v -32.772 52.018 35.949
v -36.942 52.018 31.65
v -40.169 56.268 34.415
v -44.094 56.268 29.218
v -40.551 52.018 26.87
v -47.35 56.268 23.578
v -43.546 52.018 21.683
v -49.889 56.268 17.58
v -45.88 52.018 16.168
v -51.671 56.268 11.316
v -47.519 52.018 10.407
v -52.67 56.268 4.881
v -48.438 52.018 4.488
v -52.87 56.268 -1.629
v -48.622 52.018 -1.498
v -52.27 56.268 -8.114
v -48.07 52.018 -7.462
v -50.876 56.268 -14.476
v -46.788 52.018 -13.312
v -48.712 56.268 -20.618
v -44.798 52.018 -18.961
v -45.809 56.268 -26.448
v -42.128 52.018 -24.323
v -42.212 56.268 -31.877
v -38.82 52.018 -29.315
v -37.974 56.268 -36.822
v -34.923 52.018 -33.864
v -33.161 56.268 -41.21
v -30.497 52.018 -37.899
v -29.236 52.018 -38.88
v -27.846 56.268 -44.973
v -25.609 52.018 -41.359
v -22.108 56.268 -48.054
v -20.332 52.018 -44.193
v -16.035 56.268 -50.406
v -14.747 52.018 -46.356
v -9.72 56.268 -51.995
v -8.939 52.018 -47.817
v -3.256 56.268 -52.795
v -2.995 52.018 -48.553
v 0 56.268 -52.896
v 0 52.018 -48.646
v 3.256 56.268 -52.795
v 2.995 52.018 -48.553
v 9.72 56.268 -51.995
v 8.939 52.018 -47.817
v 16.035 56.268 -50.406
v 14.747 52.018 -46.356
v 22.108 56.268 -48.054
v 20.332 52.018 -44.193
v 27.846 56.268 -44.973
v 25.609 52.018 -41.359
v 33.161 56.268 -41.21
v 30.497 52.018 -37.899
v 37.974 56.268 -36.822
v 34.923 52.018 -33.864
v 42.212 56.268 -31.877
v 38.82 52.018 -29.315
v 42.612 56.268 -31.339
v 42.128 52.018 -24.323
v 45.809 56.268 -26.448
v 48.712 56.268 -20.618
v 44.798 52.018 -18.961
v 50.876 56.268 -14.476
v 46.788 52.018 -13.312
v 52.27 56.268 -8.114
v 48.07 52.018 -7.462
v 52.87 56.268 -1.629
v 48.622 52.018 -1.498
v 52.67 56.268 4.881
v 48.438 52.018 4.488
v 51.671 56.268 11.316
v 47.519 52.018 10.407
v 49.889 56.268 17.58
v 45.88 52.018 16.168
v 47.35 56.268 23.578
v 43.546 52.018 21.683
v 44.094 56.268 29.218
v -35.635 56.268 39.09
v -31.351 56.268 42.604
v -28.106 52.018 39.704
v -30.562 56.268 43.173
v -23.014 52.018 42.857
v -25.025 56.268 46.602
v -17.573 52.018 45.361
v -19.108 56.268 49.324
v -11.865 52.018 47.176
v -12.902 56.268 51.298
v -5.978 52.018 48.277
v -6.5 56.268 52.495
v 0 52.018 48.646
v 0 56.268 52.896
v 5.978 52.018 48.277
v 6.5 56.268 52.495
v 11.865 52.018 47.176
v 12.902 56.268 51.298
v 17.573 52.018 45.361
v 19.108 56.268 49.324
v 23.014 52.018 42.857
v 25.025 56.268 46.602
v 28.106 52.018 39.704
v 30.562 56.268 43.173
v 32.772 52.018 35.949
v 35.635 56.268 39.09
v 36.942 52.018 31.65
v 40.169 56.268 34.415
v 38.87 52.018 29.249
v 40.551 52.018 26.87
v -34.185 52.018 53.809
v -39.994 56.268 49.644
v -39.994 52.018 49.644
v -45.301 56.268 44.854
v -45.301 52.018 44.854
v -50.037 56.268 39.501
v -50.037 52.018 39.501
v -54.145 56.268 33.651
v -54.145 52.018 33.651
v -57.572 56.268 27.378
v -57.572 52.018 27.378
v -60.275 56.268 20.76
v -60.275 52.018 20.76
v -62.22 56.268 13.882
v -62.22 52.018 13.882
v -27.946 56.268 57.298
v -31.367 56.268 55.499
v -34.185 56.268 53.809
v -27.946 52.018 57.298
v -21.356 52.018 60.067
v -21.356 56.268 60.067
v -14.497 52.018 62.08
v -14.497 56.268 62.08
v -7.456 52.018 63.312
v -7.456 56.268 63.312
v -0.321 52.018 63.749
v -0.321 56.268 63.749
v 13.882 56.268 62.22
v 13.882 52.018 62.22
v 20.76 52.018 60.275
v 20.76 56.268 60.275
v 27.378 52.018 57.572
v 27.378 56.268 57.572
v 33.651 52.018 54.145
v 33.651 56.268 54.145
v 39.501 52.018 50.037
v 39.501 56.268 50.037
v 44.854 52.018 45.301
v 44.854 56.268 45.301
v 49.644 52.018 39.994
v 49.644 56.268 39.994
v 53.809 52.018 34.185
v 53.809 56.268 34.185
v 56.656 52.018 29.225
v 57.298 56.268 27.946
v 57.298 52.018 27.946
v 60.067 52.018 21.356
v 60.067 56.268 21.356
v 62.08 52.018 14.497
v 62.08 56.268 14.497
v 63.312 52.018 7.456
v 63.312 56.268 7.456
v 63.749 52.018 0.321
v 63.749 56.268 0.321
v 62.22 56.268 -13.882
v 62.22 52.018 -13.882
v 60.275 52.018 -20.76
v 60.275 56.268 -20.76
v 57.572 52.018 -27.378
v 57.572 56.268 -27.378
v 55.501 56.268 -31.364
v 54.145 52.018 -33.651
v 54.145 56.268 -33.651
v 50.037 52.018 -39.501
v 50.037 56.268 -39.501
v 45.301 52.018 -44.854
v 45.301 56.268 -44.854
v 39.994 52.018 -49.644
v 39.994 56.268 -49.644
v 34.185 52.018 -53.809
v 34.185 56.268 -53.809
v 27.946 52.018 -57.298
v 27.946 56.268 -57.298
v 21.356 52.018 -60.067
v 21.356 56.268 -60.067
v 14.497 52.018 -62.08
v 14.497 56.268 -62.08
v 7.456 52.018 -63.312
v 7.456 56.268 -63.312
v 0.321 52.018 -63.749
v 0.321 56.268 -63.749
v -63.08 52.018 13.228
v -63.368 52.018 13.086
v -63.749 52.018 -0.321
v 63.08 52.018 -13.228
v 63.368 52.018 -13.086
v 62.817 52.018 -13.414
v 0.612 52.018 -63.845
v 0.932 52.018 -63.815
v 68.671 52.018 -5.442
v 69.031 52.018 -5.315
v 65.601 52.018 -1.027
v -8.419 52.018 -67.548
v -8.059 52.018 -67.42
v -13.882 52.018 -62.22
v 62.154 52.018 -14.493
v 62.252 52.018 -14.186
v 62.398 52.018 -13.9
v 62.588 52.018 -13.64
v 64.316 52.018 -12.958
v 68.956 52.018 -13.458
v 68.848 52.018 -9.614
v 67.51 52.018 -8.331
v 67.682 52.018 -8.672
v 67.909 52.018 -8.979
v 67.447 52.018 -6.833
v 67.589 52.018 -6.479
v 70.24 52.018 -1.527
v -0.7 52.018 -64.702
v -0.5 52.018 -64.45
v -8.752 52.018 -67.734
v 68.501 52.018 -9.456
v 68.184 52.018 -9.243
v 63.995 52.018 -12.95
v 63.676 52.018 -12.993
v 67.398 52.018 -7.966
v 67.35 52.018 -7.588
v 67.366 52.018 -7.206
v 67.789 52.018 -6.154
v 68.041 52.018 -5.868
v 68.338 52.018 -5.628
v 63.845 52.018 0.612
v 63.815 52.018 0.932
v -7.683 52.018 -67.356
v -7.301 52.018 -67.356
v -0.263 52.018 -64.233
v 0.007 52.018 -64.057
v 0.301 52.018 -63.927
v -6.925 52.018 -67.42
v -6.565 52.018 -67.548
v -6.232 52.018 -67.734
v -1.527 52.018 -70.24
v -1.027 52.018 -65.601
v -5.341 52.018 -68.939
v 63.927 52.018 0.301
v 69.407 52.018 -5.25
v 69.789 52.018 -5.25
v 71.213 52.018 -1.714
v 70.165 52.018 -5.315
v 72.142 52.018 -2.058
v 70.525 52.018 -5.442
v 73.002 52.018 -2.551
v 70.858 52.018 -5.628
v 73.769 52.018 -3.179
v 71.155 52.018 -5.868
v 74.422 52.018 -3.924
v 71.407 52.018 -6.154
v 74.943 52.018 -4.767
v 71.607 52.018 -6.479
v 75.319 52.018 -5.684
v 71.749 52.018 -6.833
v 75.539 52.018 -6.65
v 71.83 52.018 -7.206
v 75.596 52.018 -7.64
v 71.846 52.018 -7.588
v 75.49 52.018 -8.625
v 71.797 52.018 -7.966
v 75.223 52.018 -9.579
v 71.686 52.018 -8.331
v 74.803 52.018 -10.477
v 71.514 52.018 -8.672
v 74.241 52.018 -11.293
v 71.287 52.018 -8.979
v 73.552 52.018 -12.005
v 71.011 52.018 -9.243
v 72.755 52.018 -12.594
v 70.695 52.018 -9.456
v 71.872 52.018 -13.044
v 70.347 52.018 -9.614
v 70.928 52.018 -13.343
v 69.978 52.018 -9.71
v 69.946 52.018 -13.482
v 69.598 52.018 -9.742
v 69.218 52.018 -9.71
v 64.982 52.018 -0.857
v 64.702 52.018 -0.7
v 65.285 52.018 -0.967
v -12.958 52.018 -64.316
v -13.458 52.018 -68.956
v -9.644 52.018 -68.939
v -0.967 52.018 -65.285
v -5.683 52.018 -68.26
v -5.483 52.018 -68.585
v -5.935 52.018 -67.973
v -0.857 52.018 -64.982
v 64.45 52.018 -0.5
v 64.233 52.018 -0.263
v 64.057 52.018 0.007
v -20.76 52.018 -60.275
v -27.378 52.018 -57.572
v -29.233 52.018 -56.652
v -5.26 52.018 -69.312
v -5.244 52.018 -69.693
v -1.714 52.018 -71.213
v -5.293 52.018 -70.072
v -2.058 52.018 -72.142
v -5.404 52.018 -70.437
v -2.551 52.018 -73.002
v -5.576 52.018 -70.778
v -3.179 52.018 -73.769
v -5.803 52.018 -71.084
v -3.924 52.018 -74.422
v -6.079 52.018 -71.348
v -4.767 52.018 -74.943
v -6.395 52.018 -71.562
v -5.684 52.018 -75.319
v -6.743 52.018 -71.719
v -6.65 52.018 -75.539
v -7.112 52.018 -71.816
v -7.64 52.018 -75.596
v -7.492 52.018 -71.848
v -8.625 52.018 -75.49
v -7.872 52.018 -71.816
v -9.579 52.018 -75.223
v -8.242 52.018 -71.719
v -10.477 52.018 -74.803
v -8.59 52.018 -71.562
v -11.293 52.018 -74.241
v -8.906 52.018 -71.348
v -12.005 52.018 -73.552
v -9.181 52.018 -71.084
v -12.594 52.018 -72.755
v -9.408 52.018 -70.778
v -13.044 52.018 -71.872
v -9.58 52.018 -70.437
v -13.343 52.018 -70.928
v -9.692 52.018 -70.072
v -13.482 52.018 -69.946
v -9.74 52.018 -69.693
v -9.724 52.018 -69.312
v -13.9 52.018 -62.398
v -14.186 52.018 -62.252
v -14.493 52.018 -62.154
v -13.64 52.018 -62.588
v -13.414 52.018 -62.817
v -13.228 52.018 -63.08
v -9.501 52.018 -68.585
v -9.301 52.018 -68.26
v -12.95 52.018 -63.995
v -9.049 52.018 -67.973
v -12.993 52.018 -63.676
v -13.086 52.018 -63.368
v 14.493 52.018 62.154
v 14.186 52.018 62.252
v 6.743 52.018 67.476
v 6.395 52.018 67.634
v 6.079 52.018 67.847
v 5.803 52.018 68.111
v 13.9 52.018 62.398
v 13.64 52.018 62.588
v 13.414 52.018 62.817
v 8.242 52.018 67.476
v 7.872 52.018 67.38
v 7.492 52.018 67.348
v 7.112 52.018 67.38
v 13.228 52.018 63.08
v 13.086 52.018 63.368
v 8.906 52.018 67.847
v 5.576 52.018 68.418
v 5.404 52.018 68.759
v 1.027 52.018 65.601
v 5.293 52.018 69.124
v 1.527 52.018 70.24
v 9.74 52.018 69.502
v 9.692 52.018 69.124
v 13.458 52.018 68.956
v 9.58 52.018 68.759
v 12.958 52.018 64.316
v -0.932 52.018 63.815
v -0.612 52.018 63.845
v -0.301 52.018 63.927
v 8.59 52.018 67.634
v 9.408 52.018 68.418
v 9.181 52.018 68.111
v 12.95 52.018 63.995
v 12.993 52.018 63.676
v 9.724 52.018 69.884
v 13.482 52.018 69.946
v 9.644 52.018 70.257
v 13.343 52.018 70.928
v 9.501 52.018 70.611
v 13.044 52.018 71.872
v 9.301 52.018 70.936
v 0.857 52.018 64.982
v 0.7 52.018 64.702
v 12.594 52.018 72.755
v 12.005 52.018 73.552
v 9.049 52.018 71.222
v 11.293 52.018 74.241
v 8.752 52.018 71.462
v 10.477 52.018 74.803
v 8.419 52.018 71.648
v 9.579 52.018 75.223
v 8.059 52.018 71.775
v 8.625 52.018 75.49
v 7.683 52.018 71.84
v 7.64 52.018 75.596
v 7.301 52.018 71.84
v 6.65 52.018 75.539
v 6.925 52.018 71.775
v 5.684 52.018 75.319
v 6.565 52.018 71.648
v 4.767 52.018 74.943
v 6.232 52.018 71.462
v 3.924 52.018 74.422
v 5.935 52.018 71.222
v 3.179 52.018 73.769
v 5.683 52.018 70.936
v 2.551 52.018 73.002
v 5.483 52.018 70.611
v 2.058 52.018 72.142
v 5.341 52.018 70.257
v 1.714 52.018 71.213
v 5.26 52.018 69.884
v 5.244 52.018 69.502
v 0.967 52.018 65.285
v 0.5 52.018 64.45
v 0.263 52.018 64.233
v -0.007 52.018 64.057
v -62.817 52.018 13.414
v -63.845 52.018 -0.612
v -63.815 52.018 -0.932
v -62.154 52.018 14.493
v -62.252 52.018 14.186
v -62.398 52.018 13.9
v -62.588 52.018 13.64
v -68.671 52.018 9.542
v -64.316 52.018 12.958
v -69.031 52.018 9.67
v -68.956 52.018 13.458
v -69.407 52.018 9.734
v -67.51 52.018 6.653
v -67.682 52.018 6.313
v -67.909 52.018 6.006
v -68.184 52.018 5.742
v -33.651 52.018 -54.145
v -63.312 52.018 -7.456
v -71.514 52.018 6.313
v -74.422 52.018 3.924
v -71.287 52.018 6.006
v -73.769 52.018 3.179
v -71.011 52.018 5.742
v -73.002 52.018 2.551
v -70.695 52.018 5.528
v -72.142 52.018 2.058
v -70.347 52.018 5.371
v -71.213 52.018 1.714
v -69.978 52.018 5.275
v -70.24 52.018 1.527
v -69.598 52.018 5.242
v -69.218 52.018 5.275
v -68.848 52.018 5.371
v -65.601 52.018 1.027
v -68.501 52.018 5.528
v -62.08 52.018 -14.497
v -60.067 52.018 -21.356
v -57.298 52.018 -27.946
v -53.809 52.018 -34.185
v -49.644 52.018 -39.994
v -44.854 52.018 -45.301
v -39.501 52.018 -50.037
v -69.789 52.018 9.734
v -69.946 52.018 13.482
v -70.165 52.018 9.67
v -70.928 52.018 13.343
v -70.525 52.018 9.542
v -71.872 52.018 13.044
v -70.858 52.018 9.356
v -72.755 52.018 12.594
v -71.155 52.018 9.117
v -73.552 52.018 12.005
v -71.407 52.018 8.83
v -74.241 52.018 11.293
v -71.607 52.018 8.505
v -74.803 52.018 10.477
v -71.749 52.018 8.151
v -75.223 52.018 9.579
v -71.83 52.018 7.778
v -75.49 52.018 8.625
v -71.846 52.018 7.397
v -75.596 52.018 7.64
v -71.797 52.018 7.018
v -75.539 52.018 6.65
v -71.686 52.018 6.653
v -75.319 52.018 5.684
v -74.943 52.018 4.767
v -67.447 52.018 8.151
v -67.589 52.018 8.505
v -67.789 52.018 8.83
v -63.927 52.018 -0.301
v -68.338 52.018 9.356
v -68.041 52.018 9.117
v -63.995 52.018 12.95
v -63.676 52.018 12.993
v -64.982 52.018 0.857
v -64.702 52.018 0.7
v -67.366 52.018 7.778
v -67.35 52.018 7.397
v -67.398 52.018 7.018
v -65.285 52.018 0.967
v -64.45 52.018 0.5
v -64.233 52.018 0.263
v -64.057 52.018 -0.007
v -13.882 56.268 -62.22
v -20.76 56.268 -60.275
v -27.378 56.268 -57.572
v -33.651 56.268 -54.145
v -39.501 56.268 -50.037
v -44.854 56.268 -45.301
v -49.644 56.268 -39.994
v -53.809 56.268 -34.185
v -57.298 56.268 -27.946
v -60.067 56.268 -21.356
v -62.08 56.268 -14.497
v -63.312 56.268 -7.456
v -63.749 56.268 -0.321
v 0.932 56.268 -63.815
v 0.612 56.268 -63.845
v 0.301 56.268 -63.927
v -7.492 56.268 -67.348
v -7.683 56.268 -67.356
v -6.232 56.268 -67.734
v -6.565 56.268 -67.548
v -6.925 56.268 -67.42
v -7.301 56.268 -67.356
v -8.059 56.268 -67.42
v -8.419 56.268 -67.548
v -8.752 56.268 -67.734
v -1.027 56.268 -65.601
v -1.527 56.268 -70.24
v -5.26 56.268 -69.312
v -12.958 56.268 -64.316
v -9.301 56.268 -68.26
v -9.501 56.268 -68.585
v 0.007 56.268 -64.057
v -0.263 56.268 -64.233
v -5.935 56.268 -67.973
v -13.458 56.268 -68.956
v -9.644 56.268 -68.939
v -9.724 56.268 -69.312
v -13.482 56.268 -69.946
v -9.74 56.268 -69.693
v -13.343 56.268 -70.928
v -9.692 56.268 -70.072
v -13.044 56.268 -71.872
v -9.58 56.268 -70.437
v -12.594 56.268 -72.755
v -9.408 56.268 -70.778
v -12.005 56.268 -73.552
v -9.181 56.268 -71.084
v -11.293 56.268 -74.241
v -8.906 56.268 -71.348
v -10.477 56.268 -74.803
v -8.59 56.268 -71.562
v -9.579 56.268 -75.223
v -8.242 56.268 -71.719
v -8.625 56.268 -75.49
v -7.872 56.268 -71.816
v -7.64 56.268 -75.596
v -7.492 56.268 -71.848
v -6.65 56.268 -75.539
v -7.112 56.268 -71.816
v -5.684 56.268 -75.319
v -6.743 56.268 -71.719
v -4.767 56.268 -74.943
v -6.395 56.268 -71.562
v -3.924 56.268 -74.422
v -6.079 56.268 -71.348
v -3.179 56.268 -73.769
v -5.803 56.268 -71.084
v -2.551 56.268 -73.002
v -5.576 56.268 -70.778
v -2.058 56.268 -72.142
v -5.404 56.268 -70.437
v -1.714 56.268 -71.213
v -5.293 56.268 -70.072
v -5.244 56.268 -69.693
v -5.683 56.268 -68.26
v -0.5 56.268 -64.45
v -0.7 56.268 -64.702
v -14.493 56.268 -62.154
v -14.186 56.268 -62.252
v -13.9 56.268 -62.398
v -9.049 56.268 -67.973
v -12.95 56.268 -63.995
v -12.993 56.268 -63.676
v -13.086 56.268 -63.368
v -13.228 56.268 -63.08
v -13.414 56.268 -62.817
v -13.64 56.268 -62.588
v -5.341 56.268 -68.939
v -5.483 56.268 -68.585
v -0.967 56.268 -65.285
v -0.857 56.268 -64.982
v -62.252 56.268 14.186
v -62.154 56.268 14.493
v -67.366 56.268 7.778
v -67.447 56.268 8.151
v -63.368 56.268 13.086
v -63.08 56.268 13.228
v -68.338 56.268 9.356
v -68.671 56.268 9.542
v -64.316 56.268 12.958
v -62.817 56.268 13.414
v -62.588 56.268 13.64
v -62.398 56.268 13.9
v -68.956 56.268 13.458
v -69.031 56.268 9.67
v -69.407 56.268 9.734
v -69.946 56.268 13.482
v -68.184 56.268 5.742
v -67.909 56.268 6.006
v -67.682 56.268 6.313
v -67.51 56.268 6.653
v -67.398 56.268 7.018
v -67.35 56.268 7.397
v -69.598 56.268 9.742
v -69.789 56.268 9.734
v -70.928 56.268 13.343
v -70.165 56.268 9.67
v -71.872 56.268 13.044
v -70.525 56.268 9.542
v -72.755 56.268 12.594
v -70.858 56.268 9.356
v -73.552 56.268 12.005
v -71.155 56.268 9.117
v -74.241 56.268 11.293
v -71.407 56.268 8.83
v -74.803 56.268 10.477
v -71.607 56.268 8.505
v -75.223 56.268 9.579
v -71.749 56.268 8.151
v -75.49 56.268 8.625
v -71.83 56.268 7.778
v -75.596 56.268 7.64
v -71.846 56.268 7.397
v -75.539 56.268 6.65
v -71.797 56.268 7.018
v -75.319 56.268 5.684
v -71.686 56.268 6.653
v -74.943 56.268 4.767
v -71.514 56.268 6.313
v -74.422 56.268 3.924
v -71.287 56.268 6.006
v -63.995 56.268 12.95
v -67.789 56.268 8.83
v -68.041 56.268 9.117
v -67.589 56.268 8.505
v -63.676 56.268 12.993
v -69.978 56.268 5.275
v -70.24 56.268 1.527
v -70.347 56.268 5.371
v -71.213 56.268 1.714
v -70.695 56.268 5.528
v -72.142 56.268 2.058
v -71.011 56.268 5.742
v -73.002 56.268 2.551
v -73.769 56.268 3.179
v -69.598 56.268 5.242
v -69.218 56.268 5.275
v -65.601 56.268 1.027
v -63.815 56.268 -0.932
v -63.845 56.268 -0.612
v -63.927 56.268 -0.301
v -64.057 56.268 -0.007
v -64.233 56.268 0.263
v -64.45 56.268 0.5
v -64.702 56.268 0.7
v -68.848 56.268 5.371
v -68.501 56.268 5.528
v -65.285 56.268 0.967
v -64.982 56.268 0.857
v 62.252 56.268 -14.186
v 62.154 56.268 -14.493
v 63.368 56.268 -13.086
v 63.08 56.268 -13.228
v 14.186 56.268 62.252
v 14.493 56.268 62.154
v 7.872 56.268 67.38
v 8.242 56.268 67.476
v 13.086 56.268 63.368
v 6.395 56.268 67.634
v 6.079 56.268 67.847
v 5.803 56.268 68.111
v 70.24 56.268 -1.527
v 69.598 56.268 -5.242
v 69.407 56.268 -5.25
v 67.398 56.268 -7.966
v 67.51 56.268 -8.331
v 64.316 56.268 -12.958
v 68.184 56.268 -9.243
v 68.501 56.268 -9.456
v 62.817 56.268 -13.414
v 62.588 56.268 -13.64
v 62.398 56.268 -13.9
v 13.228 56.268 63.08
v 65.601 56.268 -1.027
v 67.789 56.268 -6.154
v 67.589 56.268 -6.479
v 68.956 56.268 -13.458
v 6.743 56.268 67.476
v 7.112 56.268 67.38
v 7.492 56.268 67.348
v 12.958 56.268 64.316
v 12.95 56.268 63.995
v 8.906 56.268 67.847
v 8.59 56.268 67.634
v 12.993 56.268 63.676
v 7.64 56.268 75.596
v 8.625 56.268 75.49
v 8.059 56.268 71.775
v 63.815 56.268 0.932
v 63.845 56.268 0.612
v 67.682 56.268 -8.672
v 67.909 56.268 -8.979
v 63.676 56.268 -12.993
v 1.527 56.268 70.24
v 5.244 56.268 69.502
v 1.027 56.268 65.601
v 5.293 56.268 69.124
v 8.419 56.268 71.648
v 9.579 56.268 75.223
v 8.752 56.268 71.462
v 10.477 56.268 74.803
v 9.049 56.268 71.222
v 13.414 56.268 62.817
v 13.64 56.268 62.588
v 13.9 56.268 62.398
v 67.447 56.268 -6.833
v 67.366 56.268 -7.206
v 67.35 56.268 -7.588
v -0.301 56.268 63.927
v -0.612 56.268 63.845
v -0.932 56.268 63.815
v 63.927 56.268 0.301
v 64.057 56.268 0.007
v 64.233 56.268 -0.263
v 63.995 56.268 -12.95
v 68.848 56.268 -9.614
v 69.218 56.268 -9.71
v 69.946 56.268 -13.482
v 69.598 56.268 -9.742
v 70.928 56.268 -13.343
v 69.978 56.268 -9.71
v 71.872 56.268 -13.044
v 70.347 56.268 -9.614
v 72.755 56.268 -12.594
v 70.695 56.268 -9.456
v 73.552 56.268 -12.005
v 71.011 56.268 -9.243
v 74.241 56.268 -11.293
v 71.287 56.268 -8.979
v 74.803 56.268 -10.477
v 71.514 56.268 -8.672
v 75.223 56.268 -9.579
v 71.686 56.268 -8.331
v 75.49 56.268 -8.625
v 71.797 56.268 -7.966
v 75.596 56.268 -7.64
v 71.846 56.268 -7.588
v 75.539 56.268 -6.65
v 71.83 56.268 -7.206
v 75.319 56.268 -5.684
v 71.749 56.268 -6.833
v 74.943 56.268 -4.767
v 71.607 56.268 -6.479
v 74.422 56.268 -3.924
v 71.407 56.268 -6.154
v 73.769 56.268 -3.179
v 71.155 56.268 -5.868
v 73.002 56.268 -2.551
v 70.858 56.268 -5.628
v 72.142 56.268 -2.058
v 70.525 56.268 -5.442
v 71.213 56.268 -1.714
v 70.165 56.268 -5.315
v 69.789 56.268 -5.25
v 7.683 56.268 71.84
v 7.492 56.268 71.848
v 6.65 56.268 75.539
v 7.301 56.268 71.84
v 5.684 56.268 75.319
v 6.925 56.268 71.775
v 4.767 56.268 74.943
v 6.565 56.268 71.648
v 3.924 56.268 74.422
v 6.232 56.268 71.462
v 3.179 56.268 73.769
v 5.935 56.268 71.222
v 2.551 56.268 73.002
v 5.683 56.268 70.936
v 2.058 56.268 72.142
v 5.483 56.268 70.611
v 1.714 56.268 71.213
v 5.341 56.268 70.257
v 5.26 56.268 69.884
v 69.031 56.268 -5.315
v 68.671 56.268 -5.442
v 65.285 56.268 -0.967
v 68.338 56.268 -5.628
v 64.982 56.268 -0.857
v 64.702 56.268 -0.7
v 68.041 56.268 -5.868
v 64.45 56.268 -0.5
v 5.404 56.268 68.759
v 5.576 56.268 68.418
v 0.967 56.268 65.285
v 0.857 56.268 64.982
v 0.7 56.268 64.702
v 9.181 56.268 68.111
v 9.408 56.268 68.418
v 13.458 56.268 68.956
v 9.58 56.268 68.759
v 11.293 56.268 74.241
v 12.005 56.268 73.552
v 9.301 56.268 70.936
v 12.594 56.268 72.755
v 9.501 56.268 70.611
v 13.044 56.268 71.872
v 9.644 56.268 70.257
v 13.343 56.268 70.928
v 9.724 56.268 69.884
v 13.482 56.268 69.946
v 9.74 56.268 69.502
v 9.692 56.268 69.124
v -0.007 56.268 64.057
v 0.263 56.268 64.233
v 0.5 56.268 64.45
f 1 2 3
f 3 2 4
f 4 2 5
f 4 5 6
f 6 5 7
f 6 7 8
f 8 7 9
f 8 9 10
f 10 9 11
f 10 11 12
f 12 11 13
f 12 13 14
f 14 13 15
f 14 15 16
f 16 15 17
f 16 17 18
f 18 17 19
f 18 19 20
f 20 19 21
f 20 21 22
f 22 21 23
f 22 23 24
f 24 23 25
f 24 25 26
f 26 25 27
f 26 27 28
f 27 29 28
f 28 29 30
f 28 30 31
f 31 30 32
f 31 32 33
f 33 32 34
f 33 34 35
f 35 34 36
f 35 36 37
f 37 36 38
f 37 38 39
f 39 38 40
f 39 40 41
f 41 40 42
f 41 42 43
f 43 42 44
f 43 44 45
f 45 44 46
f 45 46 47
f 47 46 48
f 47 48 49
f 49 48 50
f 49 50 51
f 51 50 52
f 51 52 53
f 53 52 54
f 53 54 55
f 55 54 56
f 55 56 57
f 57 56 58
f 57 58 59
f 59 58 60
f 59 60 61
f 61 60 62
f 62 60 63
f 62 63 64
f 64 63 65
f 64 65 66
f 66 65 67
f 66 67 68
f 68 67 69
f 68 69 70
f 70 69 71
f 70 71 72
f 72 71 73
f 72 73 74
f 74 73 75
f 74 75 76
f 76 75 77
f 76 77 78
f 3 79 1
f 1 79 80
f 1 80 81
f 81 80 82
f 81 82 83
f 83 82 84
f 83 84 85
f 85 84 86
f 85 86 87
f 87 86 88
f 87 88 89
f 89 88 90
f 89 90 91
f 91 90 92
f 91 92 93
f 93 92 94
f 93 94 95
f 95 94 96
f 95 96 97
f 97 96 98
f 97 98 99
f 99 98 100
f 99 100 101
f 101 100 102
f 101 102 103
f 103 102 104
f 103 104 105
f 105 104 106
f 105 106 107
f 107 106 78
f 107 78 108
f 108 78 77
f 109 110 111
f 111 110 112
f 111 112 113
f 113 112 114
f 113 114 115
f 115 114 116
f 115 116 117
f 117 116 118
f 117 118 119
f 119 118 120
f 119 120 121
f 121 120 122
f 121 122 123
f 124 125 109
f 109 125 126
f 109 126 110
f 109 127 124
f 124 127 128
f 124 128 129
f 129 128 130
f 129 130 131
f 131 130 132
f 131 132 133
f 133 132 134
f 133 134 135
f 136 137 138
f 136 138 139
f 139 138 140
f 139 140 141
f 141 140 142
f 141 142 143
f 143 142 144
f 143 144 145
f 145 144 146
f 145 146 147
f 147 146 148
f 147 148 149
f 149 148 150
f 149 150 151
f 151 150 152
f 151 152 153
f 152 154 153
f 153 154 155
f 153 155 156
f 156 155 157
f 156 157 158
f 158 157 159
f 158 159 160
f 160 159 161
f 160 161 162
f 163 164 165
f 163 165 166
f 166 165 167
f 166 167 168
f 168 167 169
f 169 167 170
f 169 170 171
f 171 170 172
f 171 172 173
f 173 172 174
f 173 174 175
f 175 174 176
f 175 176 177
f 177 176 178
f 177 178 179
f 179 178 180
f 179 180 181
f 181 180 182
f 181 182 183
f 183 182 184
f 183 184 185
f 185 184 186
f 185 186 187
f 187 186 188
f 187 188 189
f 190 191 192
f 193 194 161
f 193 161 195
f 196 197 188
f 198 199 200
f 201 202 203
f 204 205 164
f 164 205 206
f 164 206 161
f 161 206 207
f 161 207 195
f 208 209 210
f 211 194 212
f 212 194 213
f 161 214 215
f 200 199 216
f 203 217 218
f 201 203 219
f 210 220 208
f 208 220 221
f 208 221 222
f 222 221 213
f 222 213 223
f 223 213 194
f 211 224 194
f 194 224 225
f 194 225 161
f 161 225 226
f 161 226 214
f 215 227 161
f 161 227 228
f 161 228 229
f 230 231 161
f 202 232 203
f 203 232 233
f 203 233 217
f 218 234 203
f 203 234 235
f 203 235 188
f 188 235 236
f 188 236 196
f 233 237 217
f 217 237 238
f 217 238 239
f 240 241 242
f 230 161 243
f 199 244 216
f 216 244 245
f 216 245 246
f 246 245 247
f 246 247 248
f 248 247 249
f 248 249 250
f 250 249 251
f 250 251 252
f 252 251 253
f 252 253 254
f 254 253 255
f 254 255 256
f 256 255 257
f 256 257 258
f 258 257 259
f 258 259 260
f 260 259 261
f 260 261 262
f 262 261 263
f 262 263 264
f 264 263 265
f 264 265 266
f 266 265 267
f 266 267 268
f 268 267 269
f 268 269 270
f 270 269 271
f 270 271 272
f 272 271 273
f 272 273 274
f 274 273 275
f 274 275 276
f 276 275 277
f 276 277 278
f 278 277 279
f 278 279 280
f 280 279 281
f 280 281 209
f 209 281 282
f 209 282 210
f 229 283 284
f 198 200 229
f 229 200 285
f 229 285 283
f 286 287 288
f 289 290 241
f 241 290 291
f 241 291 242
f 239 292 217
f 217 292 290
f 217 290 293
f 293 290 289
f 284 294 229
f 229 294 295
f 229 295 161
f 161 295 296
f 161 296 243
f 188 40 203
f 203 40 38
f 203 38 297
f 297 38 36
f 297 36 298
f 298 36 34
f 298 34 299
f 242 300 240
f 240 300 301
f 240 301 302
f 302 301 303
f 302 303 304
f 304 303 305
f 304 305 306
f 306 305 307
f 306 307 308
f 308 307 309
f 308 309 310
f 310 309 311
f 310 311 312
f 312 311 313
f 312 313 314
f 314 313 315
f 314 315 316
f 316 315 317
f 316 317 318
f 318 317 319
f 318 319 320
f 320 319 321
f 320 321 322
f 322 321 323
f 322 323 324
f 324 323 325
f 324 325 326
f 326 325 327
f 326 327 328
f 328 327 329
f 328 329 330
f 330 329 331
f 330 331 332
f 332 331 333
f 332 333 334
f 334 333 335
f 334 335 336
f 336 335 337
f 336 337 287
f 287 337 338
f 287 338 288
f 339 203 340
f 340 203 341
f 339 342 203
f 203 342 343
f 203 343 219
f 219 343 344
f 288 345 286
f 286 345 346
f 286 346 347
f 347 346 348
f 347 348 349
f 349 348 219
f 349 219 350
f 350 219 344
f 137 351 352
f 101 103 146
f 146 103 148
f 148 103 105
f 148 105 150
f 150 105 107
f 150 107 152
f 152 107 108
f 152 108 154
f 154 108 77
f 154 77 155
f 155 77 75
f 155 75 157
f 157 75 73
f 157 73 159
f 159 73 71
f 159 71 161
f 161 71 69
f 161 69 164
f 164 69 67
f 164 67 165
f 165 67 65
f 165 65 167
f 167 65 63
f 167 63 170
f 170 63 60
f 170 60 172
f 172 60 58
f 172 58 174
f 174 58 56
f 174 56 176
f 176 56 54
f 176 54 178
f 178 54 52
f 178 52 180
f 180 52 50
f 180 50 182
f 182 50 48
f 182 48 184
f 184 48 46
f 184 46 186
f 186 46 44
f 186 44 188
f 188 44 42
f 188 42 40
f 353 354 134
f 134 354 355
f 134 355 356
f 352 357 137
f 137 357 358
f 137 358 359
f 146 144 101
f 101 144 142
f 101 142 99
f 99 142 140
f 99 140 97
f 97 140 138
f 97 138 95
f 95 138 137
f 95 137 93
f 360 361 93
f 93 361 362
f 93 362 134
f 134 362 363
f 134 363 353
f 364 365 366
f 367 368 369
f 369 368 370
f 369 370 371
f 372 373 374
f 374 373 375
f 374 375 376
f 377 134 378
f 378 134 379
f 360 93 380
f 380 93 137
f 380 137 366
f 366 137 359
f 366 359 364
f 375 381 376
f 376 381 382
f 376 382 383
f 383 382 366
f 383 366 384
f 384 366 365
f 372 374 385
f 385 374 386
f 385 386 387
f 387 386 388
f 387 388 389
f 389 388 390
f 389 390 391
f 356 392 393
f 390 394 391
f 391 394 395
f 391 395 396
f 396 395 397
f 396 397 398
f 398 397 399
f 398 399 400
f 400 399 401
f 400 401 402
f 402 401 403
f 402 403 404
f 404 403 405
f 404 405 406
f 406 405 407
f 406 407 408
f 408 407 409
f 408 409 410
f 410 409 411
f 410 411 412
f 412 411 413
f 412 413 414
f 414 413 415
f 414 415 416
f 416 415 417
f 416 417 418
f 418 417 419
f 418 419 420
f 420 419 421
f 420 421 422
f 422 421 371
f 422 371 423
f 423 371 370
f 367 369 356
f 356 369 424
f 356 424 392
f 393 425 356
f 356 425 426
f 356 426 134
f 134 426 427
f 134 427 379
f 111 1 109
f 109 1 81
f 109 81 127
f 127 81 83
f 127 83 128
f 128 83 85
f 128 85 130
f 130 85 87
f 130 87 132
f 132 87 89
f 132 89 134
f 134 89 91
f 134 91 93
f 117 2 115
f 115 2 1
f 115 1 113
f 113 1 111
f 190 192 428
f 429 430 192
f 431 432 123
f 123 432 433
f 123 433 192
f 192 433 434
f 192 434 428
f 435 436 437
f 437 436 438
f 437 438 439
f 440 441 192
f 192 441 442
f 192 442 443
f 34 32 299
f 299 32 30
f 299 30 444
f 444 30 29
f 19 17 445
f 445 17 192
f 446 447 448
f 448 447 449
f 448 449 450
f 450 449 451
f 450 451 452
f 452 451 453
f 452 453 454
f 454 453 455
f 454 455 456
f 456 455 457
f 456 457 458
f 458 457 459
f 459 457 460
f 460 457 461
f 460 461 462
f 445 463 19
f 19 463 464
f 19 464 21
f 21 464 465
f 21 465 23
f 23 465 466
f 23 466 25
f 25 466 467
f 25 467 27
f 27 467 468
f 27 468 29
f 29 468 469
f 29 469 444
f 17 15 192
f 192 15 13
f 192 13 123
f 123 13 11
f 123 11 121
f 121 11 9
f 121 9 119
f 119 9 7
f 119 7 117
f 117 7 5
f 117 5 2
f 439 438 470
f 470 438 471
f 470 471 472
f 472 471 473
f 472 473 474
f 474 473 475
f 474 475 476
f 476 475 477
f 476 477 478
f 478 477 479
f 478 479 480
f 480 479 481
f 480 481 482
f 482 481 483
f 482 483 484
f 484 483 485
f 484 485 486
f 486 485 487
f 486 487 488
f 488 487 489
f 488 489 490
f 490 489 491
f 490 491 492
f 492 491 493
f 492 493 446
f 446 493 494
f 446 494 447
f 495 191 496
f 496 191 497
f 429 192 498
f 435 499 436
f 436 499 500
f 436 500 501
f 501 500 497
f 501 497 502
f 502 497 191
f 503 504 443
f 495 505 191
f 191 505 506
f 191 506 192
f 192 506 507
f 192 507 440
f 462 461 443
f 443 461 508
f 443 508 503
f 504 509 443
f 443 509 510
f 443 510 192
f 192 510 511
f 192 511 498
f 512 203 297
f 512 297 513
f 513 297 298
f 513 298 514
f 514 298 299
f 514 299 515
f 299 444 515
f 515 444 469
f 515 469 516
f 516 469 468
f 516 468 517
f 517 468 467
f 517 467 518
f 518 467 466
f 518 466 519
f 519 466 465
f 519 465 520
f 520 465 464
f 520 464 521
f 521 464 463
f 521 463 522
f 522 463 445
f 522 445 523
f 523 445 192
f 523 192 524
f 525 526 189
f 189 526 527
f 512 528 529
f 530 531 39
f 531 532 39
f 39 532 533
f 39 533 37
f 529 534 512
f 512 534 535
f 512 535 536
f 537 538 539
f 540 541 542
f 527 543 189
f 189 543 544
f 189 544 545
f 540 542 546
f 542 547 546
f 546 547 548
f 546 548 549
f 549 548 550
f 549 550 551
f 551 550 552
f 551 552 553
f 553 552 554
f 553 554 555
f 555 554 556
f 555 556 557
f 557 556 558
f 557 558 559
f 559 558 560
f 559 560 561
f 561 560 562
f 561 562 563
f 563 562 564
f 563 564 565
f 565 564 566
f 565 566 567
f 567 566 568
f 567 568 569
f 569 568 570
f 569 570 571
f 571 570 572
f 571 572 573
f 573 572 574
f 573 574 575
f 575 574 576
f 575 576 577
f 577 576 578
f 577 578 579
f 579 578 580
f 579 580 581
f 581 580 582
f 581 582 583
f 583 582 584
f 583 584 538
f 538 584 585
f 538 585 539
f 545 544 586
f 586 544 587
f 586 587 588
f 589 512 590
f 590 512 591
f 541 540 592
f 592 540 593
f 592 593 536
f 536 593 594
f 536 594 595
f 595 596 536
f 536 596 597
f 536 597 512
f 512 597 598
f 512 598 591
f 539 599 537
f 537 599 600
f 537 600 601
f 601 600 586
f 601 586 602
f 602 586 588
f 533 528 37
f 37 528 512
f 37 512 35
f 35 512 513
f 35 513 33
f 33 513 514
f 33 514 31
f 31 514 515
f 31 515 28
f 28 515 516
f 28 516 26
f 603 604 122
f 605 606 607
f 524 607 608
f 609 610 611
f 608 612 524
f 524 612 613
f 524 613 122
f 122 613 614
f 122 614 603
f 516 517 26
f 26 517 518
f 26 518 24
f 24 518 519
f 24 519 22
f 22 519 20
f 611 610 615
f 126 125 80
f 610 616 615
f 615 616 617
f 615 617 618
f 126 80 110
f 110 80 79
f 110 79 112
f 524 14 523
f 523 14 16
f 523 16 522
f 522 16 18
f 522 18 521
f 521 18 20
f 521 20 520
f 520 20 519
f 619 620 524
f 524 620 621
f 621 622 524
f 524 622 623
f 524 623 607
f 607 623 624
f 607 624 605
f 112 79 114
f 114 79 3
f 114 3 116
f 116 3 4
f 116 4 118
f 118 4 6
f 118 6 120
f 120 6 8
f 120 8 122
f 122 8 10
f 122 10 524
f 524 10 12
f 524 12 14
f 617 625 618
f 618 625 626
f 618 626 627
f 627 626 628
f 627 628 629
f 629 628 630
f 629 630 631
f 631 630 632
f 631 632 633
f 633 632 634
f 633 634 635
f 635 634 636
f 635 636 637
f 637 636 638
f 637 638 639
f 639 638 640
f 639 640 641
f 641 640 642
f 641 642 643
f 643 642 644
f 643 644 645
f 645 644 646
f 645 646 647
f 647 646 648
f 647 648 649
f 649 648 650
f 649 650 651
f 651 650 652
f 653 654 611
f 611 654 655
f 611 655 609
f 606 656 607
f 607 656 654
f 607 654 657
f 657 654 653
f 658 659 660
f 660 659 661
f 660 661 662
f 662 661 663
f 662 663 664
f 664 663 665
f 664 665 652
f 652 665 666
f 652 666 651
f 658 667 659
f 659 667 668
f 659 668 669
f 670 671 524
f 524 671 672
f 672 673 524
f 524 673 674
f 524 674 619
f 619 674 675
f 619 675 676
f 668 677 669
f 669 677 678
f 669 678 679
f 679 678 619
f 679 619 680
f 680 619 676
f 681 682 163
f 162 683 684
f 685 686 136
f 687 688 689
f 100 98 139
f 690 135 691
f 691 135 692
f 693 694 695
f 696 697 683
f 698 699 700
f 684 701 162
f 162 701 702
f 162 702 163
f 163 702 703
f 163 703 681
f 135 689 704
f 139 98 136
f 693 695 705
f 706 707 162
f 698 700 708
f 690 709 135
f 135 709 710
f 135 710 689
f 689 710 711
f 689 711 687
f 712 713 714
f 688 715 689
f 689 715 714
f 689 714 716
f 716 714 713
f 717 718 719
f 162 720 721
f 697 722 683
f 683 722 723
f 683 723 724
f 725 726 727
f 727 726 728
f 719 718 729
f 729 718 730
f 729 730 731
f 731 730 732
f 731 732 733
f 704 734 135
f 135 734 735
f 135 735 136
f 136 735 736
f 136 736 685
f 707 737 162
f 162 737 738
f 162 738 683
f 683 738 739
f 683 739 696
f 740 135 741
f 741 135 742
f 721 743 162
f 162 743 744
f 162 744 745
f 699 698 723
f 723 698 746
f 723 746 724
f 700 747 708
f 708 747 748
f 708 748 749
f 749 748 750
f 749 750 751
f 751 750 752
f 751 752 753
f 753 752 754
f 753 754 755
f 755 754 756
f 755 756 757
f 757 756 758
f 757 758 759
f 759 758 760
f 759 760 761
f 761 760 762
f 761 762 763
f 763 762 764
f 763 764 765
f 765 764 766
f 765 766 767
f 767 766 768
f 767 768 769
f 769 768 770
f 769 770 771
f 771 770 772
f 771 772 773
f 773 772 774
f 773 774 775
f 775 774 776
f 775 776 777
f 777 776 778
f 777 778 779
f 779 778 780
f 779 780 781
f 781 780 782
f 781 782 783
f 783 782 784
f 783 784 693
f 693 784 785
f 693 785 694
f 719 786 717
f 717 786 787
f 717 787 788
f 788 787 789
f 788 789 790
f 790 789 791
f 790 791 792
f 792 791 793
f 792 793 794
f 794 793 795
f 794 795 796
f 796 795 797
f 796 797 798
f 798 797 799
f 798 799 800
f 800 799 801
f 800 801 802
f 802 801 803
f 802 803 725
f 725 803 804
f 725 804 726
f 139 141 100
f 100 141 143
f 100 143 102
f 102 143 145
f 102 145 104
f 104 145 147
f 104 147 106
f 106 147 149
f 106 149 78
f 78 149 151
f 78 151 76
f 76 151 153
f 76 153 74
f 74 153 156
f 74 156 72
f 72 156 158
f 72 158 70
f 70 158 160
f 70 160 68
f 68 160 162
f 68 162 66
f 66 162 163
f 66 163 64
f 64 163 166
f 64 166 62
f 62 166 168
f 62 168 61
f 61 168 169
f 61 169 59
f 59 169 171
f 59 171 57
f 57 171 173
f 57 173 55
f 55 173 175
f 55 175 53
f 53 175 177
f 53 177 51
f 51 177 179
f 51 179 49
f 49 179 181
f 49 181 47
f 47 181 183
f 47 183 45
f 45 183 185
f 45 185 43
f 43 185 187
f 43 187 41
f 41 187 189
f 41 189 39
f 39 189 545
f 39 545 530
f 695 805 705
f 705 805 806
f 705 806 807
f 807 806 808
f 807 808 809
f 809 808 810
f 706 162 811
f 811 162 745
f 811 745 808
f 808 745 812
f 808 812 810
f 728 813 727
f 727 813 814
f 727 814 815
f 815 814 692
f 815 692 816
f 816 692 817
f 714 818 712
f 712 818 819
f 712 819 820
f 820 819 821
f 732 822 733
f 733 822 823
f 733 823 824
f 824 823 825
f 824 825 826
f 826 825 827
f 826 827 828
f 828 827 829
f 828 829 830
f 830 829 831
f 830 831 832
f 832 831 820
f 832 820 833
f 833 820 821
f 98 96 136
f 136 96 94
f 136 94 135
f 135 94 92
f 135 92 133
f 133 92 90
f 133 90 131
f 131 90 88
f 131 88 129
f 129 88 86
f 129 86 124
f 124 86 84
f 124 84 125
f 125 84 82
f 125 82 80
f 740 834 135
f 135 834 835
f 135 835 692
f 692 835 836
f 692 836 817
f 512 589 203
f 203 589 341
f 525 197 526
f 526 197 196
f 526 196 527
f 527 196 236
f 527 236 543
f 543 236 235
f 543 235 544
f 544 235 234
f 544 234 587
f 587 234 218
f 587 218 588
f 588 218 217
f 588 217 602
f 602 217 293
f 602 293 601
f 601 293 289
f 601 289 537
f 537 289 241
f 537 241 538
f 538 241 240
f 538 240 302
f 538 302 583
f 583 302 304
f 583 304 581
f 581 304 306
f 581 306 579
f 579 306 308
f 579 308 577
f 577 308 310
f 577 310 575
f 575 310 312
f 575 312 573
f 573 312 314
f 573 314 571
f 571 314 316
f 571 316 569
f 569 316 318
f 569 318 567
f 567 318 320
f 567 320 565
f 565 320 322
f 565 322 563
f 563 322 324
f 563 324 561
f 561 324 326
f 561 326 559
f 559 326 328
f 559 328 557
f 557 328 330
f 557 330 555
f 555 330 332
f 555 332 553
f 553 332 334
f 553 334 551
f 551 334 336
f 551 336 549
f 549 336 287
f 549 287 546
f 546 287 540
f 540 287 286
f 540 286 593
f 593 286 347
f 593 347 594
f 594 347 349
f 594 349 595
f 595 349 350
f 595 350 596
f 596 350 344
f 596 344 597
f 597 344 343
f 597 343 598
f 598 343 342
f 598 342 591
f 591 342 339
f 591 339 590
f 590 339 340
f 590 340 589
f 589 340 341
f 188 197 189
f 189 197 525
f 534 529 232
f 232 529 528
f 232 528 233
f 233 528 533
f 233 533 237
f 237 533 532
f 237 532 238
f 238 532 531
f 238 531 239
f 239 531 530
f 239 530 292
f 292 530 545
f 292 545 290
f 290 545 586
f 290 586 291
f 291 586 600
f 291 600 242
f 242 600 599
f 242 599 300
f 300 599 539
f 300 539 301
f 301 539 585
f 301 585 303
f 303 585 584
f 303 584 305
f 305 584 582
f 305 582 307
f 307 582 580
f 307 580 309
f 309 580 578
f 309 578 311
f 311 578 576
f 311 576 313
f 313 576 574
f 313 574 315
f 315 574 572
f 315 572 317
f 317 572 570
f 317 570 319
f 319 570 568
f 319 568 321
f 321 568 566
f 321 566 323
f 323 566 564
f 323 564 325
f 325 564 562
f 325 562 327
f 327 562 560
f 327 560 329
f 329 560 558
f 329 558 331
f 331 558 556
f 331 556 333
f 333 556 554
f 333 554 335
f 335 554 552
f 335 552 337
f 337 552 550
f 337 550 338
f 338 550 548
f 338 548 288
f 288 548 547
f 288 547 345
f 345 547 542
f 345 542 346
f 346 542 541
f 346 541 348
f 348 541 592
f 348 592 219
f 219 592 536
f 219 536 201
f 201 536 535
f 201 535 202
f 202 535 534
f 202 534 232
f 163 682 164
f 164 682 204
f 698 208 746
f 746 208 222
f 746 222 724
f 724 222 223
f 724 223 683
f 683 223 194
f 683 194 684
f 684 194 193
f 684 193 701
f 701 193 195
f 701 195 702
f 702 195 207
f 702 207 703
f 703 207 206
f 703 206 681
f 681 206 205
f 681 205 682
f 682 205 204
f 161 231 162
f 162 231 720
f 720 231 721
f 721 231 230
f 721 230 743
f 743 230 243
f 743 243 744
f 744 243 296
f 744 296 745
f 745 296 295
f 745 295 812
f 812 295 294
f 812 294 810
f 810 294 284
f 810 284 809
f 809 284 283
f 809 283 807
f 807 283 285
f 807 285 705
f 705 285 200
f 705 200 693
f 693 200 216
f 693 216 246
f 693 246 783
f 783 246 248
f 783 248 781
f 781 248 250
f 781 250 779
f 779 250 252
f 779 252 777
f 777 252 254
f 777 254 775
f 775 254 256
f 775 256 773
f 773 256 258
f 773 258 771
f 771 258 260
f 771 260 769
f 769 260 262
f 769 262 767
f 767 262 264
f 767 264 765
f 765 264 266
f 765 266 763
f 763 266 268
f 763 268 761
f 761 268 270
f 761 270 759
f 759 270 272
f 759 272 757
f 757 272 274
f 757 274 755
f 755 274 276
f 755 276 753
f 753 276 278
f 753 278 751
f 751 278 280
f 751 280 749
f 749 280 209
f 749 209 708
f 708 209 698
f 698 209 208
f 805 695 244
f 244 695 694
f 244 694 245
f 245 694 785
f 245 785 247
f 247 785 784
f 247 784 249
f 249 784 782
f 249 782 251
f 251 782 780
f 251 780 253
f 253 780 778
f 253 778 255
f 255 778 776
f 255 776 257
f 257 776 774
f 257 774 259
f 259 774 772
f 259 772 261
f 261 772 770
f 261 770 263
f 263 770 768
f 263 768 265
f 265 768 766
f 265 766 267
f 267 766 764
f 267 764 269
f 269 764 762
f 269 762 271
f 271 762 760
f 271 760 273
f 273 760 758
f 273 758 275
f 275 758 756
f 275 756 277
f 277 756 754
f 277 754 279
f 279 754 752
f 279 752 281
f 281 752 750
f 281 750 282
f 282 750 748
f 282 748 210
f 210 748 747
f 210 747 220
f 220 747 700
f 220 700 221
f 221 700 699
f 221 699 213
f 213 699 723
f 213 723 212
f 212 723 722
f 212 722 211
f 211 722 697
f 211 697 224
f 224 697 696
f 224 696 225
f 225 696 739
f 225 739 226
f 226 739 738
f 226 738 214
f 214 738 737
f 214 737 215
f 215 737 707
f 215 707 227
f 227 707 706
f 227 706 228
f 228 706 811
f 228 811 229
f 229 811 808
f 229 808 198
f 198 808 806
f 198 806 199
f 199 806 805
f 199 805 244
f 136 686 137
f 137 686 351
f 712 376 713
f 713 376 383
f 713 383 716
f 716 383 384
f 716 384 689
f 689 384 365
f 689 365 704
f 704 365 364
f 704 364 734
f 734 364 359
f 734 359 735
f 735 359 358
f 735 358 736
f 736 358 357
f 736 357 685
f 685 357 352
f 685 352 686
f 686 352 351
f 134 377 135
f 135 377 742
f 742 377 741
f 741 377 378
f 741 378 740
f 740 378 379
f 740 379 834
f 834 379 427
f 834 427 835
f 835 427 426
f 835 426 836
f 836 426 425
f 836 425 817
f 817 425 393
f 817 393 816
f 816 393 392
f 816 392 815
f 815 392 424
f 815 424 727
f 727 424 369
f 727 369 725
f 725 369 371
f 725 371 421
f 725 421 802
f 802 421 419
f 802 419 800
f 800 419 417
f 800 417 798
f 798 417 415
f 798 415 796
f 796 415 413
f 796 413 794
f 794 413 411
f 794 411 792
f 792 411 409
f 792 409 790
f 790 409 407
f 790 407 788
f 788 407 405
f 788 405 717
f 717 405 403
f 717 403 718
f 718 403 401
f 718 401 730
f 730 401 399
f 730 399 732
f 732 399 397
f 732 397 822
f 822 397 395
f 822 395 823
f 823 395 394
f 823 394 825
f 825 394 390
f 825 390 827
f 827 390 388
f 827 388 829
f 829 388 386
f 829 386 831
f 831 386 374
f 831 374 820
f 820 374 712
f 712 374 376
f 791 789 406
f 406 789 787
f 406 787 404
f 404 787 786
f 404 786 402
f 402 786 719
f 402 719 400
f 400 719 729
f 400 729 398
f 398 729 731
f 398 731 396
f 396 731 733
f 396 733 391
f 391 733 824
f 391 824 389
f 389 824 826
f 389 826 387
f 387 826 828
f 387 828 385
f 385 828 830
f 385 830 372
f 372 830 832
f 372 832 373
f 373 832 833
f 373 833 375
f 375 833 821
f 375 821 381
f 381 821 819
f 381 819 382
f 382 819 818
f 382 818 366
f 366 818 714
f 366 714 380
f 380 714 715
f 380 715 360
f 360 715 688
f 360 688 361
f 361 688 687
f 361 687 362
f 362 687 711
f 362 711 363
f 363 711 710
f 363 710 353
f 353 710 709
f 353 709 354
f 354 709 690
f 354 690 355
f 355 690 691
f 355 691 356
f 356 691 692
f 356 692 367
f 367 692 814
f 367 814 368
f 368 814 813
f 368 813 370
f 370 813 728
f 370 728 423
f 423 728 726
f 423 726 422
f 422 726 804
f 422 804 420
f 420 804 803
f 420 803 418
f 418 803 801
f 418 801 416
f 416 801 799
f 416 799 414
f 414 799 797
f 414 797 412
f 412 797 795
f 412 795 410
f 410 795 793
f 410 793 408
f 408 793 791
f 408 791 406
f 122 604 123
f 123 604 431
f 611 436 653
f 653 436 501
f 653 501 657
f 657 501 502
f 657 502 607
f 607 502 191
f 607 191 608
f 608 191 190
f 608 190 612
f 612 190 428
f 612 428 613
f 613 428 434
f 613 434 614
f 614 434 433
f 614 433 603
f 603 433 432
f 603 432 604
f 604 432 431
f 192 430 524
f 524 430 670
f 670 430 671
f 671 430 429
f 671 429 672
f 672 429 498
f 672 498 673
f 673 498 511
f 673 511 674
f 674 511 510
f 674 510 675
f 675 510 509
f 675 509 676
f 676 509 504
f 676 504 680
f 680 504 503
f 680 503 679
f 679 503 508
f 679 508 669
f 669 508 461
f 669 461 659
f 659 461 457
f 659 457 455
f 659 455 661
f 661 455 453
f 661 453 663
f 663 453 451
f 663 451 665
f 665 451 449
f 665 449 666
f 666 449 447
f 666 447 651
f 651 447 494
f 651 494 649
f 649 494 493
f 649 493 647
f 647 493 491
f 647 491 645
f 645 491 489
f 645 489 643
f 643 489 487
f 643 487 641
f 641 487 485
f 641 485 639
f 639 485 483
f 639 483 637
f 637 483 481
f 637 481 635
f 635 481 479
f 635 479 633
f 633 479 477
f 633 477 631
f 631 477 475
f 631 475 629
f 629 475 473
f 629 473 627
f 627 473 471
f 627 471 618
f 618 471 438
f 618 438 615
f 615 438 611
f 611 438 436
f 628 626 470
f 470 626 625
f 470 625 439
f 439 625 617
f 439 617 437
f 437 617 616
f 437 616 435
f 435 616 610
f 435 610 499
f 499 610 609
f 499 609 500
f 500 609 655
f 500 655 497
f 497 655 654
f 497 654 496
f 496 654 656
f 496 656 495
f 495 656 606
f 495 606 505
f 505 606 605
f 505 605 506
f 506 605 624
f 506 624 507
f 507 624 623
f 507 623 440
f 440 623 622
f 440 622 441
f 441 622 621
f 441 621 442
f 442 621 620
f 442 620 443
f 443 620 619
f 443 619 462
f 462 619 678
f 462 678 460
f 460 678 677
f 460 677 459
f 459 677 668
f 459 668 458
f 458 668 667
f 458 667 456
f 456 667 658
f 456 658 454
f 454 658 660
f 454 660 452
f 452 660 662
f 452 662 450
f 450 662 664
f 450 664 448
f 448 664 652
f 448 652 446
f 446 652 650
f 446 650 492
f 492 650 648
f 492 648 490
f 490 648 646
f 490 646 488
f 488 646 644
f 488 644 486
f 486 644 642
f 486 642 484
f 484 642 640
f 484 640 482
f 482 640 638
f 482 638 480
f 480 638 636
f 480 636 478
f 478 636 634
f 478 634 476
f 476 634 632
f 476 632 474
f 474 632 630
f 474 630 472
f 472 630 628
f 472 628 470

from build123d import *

# Parameters (mm, degrees)
FILLET1_R           = 2
FILLET2_R           = 6
SCALE1_SCALE        = 0.85
SKETCH4_R           = 10.6
CUT_EXTRUDE2_DEPTH  = 51.23590774
SKETCH9_R           = 2.25
BOSS_EXTRUDE1_DEPTH = 4.25
FILLET4_R           = 3
CUT_EXTRUDE3_DEPTH  = 46.98590774


with BuildPart() as part:
    # Sketch2 → Revolve1 (revolve)
    with BuildSketch(Plane(origin=(0, 0, 0), x_dir=(0, 0, -1), z_dir=(1, 0, 0))):
        Polygon((10.1, 0), (10.1, 6.971067812), (62.23, 59.101067812), (75, 59.101067812), (75, 54.101067812), (64.301067812, 54.101067812), (15.1, 4.9), (20, 0), align=None)
    revolve(axis=Axis((0, 0, 0), (0, 1, 0)))

    # Fillet1
    fillet1_edges = [part.edges().sort_by_distance(p)[0] for p in [
        (0, 4.9, 15.1),
    ]]
    fillet(fillet1_edges, radius=FILLET1_R)

    # Fillet2
    fillet2_edges = [part.edges().sort_by_distance(p)[0] for p in [
        (0, 6.971067812, 10.1),
    ]]
    fillet(fillet2_edges, radius=FILLET2_R)


with BuildPart() as part_1:
    # Scale1: scaled about (0, 40.216103787, 0)
    add(part.part.scale(SCALE1_SCALE).moved(Location((0, 6.032415568, 0))))

    # Sketch4 → Cut-Extrude2 (cut, through all)
    with BuildSketch(Plane.XZ.offset(-6.032415568)):
        Circle(SKETCH4_R)
    extrude(amount=-CUT_EXTRUDE2_DEPTH, mode=Mode.SUBTRACT)

    # Sketch9 → Boss-Extrude1 (add)
    with BuildSketch(Plane.XZ.offset(-52.018323208)):
        with BuildLine():
            Line((-62.154465971, 14.492663996), (-63.814937276, -0.932057036))
            ThreePointArc((-63.814937276, -0.932057036), (-64.336549414, 0.385954164), (-65.60066074, 1.027246064))
            Line((-65.60066074, 1.027246064), (-70.240082919, 1.526679887))
            ThreePointArc((-70.240082919, 1.526679887), (-75.563426885, 8.134403325), (-68.955703447, 13.45774729))
            Line((-68.955703447, 13.45774729), (-64.316281268, 12.958313466))
            ThreePointArc((-64.316281268, 12.958313466), (-62.944644221, 13.315867039), (-62.154465971, 14.492663996))
        make_face()
        with Locations((-69.597893183, 7.492213588)):
            Circle(SKETCH9_R, mode=Mode.SUBTRACT)
        with BuildLine():
            Line((-0.932057036, 63.814937276), (14.492663996, 62.154465971))
            ThreePointArc((14.492663996, 62.154465971), (13.315867039, 62.944644221), (12.958313466, 64.316281268))
            Line((12.958313466, 64.316281268), (13.45774729, 68.955703447))
            ThreePointArc((13.45774729, 68.955703447), (8.134403325, 75.563426885), (1.526679887, 70.240082919))
            Line((1.526679887, 70.240082919), (1.027246064, 65.60066074))
            ThreePointArc((1.027246064, 65.60066074), (0.385954164, 64.336549414), (-0.932057036, 63.814937276))
        make_face()
        with Locations((7.492213588, 69.597893183)):
            Circle(SKETCH9_R, mode=Mode.SUBTRACT)
        with BuildLine():
            Line((63.814937276, 0.932057036), (62.154465971, -14.492663996))
            ThreePointArc((62.154465971, -14.492663996), (62.944644221, -13.315867039), (64.316281268, -12.958313466))
            Line((64.316281268, -12.958313466), (68.955703447, -13.45774729))
            ThreePointArc((68.955703447, -13.45774729), (75.563426885, -8.134403325), (70.240082919, -1.526679887))
            Line((70.240082919, -1.526679887), (65.60066074, -1.027246064))
            ThreePointArc((65.60066074, -1.027246064), (64.336549414, -0.385954164), (63.814937276, 0.932057036))
        make_face()
        with Locations((69.597893183, -7.492213588)):
            Circle(SKETCH9_R, mode=Mode.SUBTRACT)
        with BuildLine():
            Line((-14.492663996, -62.154465971), (0.932057036, -63.814937276))
            ThreePointArc((0.932057036, -63.814937276), (-0.385954164, -64.336549414), (-1.027246064, -65.60066074))
            Line((-1.027246064, -65.60066074), (-1.526679887, -70.240082919))
            ThreePointArc((-1.526679887, -70.240082919), (-8.134403325, -75.563426885), (-13.45774729, -68.955703447))
            Line((-13.45774729, -68.955703447), (-12.958313466, -64.316281268))
            ThreePointArc((-12.958313466, -64.316281268), (-13.315867039, -62.944644221), (-14.492663996, -62.154465971))
        make_face()
        with Locations((-7.492213588, -69.597893183)):
            Circle(SKETCH9_R, mode=Mode.SUBTRACT)
    extrude(amount=-BOSS_EXTRUDE1_DEPTH)

    # Fillet4
    fillet4_edges = [part_1.edges().sort_by_distance(p)[0] for p in [
        (-7.495331881, 13.972823208, 7.495331881),
        (0, 52.018323208, 54.65590764),
    ]]
    fillet(fillet4_edges, radius=FILLET4_R)

    # Sketch11 → Cut-Extrude3 (cut, through all)
    with BuildSketch(Plane.XZ.offset(-52.018323208)):
        with BuildLine():
            Line((-62.220212975, 13.8819162), (-62.154465971, 14.492663996))
            ThreePointArc((-62.154465971, 14.492663996), (-62.944644221, 13.315867039), (-64.316281268, 12.958313466))
            Line((-64.316281268, 12.958313466), (-68.955703447, 13.45774729))
            ThreePointArc((-68.955703447, 13.45774729), (-75.563426885, 8.134403325), (-70.240082919, 1.526679887))
            Line((-70.240082919, 1.526679887), (-65.60066074, 1.027246064))
            ThreePointArc((-65.60066074, 1.027246064), (-64.336549414, 0.385954164), (-63.814937276, -0.932057036))
            Line((-63.814937276, -0.932057036), (-63.749190272, -0.321309239))
            ThreePointArc((-63.749190272, -0.321309239), (-49.643889291, -39.99433405), (-13.8819162, -62.220212975))
            Line((-13.8819162, -62.220212975), (-14.492663996, -62.154465971))
            ThreePointArc((-14.492663996, -62.154465971), (-13.315867039, -62.944644221), (-12.958313466, -64.316281268))
            Line((-12.958313466, -64.316281268), (-13.45774729, -68.955703447))
            ThreePointArc((-13.45774729, -68.955703447), (-8.134403325, -75.563426885), (-1.526679887, -70.240082919))
            Line((-1.526679887, -70.240082919), (-1.027246064, -65.60066074))
            ThreePointArc((-1.027246064, -65.60066074), (-0.385954164, -64.336549414), (0.932057036, -63.814937276))
            Line((0.932057036, -63.814937276), (0.321309239, -63.749190272))
            ThreePointArc((0.321309239, -63.749190272), (39.99433405, -49.643889291), (62.220212975, -13.8819162))
            Line((62.220212975, -13.8819162), (62.154465971, -14.492663996))
            ThreePointArc((62.154465971, -14.492663996), (62.944644221, -13.315867039), (64.316281268, -12.958313466))
            Line((64.316281268, -12.958313466), (68.955703447, -13.45774729))
            ThreePointArc((68.955703447, -13.45774729), (75.563426885, -8.134403325), (70.240082919, -1.526679887))
            Line((70.240082919, -1.526679887), (65.60066074, -1.027246064))
            ThreePointArc((65.60066074, -1.027246064), (64.336549414, -0.385954164), (63.814937276, 0.932057036))
            Line((63.814937276, 0.932057036), (63.749190272, 0.321309239))
            ThreePointArc((63.749190272, 0.321309239), (49.643889291, 39.99433405), (13.8819162, 62.220212975))
            Line((13.8819162, 62.220212975), (14.492663996, 62.154465971))
            ThreePointArc((14.492663996, 62.154465971), (13.315867039, 62.944644221), (12.958313466, 64.316281268))
            Line((12.958313466, 64.316281268), (13.45774729, 68.955703447))
            ThreePointArc((13.45774729, 68.955703447), (8.134403325, 75.563426885), (1.526679887, 70.240082919))
            Line((1.526679887, 70.240082919), (1.027246064, 65.60066074))
            ThreePointArc((1.027246064, 65.60066074), (0.385954164, 64.336549414), (-0.932057036, 63.814937276))
            Line((-0.932057036, 63.814937276), (-0.321309239, 63.749190272))
            ThreePointArc((-0.321309239, 63.749190272), (-39.99433405, 49.643889291), (-62.220212975, 13.8819162))
        make_face()
    extrude(amount=CUT_EXTRUDE3_DEPTH, mode=Mode.SUBTRACT)


solid = part_1.part
